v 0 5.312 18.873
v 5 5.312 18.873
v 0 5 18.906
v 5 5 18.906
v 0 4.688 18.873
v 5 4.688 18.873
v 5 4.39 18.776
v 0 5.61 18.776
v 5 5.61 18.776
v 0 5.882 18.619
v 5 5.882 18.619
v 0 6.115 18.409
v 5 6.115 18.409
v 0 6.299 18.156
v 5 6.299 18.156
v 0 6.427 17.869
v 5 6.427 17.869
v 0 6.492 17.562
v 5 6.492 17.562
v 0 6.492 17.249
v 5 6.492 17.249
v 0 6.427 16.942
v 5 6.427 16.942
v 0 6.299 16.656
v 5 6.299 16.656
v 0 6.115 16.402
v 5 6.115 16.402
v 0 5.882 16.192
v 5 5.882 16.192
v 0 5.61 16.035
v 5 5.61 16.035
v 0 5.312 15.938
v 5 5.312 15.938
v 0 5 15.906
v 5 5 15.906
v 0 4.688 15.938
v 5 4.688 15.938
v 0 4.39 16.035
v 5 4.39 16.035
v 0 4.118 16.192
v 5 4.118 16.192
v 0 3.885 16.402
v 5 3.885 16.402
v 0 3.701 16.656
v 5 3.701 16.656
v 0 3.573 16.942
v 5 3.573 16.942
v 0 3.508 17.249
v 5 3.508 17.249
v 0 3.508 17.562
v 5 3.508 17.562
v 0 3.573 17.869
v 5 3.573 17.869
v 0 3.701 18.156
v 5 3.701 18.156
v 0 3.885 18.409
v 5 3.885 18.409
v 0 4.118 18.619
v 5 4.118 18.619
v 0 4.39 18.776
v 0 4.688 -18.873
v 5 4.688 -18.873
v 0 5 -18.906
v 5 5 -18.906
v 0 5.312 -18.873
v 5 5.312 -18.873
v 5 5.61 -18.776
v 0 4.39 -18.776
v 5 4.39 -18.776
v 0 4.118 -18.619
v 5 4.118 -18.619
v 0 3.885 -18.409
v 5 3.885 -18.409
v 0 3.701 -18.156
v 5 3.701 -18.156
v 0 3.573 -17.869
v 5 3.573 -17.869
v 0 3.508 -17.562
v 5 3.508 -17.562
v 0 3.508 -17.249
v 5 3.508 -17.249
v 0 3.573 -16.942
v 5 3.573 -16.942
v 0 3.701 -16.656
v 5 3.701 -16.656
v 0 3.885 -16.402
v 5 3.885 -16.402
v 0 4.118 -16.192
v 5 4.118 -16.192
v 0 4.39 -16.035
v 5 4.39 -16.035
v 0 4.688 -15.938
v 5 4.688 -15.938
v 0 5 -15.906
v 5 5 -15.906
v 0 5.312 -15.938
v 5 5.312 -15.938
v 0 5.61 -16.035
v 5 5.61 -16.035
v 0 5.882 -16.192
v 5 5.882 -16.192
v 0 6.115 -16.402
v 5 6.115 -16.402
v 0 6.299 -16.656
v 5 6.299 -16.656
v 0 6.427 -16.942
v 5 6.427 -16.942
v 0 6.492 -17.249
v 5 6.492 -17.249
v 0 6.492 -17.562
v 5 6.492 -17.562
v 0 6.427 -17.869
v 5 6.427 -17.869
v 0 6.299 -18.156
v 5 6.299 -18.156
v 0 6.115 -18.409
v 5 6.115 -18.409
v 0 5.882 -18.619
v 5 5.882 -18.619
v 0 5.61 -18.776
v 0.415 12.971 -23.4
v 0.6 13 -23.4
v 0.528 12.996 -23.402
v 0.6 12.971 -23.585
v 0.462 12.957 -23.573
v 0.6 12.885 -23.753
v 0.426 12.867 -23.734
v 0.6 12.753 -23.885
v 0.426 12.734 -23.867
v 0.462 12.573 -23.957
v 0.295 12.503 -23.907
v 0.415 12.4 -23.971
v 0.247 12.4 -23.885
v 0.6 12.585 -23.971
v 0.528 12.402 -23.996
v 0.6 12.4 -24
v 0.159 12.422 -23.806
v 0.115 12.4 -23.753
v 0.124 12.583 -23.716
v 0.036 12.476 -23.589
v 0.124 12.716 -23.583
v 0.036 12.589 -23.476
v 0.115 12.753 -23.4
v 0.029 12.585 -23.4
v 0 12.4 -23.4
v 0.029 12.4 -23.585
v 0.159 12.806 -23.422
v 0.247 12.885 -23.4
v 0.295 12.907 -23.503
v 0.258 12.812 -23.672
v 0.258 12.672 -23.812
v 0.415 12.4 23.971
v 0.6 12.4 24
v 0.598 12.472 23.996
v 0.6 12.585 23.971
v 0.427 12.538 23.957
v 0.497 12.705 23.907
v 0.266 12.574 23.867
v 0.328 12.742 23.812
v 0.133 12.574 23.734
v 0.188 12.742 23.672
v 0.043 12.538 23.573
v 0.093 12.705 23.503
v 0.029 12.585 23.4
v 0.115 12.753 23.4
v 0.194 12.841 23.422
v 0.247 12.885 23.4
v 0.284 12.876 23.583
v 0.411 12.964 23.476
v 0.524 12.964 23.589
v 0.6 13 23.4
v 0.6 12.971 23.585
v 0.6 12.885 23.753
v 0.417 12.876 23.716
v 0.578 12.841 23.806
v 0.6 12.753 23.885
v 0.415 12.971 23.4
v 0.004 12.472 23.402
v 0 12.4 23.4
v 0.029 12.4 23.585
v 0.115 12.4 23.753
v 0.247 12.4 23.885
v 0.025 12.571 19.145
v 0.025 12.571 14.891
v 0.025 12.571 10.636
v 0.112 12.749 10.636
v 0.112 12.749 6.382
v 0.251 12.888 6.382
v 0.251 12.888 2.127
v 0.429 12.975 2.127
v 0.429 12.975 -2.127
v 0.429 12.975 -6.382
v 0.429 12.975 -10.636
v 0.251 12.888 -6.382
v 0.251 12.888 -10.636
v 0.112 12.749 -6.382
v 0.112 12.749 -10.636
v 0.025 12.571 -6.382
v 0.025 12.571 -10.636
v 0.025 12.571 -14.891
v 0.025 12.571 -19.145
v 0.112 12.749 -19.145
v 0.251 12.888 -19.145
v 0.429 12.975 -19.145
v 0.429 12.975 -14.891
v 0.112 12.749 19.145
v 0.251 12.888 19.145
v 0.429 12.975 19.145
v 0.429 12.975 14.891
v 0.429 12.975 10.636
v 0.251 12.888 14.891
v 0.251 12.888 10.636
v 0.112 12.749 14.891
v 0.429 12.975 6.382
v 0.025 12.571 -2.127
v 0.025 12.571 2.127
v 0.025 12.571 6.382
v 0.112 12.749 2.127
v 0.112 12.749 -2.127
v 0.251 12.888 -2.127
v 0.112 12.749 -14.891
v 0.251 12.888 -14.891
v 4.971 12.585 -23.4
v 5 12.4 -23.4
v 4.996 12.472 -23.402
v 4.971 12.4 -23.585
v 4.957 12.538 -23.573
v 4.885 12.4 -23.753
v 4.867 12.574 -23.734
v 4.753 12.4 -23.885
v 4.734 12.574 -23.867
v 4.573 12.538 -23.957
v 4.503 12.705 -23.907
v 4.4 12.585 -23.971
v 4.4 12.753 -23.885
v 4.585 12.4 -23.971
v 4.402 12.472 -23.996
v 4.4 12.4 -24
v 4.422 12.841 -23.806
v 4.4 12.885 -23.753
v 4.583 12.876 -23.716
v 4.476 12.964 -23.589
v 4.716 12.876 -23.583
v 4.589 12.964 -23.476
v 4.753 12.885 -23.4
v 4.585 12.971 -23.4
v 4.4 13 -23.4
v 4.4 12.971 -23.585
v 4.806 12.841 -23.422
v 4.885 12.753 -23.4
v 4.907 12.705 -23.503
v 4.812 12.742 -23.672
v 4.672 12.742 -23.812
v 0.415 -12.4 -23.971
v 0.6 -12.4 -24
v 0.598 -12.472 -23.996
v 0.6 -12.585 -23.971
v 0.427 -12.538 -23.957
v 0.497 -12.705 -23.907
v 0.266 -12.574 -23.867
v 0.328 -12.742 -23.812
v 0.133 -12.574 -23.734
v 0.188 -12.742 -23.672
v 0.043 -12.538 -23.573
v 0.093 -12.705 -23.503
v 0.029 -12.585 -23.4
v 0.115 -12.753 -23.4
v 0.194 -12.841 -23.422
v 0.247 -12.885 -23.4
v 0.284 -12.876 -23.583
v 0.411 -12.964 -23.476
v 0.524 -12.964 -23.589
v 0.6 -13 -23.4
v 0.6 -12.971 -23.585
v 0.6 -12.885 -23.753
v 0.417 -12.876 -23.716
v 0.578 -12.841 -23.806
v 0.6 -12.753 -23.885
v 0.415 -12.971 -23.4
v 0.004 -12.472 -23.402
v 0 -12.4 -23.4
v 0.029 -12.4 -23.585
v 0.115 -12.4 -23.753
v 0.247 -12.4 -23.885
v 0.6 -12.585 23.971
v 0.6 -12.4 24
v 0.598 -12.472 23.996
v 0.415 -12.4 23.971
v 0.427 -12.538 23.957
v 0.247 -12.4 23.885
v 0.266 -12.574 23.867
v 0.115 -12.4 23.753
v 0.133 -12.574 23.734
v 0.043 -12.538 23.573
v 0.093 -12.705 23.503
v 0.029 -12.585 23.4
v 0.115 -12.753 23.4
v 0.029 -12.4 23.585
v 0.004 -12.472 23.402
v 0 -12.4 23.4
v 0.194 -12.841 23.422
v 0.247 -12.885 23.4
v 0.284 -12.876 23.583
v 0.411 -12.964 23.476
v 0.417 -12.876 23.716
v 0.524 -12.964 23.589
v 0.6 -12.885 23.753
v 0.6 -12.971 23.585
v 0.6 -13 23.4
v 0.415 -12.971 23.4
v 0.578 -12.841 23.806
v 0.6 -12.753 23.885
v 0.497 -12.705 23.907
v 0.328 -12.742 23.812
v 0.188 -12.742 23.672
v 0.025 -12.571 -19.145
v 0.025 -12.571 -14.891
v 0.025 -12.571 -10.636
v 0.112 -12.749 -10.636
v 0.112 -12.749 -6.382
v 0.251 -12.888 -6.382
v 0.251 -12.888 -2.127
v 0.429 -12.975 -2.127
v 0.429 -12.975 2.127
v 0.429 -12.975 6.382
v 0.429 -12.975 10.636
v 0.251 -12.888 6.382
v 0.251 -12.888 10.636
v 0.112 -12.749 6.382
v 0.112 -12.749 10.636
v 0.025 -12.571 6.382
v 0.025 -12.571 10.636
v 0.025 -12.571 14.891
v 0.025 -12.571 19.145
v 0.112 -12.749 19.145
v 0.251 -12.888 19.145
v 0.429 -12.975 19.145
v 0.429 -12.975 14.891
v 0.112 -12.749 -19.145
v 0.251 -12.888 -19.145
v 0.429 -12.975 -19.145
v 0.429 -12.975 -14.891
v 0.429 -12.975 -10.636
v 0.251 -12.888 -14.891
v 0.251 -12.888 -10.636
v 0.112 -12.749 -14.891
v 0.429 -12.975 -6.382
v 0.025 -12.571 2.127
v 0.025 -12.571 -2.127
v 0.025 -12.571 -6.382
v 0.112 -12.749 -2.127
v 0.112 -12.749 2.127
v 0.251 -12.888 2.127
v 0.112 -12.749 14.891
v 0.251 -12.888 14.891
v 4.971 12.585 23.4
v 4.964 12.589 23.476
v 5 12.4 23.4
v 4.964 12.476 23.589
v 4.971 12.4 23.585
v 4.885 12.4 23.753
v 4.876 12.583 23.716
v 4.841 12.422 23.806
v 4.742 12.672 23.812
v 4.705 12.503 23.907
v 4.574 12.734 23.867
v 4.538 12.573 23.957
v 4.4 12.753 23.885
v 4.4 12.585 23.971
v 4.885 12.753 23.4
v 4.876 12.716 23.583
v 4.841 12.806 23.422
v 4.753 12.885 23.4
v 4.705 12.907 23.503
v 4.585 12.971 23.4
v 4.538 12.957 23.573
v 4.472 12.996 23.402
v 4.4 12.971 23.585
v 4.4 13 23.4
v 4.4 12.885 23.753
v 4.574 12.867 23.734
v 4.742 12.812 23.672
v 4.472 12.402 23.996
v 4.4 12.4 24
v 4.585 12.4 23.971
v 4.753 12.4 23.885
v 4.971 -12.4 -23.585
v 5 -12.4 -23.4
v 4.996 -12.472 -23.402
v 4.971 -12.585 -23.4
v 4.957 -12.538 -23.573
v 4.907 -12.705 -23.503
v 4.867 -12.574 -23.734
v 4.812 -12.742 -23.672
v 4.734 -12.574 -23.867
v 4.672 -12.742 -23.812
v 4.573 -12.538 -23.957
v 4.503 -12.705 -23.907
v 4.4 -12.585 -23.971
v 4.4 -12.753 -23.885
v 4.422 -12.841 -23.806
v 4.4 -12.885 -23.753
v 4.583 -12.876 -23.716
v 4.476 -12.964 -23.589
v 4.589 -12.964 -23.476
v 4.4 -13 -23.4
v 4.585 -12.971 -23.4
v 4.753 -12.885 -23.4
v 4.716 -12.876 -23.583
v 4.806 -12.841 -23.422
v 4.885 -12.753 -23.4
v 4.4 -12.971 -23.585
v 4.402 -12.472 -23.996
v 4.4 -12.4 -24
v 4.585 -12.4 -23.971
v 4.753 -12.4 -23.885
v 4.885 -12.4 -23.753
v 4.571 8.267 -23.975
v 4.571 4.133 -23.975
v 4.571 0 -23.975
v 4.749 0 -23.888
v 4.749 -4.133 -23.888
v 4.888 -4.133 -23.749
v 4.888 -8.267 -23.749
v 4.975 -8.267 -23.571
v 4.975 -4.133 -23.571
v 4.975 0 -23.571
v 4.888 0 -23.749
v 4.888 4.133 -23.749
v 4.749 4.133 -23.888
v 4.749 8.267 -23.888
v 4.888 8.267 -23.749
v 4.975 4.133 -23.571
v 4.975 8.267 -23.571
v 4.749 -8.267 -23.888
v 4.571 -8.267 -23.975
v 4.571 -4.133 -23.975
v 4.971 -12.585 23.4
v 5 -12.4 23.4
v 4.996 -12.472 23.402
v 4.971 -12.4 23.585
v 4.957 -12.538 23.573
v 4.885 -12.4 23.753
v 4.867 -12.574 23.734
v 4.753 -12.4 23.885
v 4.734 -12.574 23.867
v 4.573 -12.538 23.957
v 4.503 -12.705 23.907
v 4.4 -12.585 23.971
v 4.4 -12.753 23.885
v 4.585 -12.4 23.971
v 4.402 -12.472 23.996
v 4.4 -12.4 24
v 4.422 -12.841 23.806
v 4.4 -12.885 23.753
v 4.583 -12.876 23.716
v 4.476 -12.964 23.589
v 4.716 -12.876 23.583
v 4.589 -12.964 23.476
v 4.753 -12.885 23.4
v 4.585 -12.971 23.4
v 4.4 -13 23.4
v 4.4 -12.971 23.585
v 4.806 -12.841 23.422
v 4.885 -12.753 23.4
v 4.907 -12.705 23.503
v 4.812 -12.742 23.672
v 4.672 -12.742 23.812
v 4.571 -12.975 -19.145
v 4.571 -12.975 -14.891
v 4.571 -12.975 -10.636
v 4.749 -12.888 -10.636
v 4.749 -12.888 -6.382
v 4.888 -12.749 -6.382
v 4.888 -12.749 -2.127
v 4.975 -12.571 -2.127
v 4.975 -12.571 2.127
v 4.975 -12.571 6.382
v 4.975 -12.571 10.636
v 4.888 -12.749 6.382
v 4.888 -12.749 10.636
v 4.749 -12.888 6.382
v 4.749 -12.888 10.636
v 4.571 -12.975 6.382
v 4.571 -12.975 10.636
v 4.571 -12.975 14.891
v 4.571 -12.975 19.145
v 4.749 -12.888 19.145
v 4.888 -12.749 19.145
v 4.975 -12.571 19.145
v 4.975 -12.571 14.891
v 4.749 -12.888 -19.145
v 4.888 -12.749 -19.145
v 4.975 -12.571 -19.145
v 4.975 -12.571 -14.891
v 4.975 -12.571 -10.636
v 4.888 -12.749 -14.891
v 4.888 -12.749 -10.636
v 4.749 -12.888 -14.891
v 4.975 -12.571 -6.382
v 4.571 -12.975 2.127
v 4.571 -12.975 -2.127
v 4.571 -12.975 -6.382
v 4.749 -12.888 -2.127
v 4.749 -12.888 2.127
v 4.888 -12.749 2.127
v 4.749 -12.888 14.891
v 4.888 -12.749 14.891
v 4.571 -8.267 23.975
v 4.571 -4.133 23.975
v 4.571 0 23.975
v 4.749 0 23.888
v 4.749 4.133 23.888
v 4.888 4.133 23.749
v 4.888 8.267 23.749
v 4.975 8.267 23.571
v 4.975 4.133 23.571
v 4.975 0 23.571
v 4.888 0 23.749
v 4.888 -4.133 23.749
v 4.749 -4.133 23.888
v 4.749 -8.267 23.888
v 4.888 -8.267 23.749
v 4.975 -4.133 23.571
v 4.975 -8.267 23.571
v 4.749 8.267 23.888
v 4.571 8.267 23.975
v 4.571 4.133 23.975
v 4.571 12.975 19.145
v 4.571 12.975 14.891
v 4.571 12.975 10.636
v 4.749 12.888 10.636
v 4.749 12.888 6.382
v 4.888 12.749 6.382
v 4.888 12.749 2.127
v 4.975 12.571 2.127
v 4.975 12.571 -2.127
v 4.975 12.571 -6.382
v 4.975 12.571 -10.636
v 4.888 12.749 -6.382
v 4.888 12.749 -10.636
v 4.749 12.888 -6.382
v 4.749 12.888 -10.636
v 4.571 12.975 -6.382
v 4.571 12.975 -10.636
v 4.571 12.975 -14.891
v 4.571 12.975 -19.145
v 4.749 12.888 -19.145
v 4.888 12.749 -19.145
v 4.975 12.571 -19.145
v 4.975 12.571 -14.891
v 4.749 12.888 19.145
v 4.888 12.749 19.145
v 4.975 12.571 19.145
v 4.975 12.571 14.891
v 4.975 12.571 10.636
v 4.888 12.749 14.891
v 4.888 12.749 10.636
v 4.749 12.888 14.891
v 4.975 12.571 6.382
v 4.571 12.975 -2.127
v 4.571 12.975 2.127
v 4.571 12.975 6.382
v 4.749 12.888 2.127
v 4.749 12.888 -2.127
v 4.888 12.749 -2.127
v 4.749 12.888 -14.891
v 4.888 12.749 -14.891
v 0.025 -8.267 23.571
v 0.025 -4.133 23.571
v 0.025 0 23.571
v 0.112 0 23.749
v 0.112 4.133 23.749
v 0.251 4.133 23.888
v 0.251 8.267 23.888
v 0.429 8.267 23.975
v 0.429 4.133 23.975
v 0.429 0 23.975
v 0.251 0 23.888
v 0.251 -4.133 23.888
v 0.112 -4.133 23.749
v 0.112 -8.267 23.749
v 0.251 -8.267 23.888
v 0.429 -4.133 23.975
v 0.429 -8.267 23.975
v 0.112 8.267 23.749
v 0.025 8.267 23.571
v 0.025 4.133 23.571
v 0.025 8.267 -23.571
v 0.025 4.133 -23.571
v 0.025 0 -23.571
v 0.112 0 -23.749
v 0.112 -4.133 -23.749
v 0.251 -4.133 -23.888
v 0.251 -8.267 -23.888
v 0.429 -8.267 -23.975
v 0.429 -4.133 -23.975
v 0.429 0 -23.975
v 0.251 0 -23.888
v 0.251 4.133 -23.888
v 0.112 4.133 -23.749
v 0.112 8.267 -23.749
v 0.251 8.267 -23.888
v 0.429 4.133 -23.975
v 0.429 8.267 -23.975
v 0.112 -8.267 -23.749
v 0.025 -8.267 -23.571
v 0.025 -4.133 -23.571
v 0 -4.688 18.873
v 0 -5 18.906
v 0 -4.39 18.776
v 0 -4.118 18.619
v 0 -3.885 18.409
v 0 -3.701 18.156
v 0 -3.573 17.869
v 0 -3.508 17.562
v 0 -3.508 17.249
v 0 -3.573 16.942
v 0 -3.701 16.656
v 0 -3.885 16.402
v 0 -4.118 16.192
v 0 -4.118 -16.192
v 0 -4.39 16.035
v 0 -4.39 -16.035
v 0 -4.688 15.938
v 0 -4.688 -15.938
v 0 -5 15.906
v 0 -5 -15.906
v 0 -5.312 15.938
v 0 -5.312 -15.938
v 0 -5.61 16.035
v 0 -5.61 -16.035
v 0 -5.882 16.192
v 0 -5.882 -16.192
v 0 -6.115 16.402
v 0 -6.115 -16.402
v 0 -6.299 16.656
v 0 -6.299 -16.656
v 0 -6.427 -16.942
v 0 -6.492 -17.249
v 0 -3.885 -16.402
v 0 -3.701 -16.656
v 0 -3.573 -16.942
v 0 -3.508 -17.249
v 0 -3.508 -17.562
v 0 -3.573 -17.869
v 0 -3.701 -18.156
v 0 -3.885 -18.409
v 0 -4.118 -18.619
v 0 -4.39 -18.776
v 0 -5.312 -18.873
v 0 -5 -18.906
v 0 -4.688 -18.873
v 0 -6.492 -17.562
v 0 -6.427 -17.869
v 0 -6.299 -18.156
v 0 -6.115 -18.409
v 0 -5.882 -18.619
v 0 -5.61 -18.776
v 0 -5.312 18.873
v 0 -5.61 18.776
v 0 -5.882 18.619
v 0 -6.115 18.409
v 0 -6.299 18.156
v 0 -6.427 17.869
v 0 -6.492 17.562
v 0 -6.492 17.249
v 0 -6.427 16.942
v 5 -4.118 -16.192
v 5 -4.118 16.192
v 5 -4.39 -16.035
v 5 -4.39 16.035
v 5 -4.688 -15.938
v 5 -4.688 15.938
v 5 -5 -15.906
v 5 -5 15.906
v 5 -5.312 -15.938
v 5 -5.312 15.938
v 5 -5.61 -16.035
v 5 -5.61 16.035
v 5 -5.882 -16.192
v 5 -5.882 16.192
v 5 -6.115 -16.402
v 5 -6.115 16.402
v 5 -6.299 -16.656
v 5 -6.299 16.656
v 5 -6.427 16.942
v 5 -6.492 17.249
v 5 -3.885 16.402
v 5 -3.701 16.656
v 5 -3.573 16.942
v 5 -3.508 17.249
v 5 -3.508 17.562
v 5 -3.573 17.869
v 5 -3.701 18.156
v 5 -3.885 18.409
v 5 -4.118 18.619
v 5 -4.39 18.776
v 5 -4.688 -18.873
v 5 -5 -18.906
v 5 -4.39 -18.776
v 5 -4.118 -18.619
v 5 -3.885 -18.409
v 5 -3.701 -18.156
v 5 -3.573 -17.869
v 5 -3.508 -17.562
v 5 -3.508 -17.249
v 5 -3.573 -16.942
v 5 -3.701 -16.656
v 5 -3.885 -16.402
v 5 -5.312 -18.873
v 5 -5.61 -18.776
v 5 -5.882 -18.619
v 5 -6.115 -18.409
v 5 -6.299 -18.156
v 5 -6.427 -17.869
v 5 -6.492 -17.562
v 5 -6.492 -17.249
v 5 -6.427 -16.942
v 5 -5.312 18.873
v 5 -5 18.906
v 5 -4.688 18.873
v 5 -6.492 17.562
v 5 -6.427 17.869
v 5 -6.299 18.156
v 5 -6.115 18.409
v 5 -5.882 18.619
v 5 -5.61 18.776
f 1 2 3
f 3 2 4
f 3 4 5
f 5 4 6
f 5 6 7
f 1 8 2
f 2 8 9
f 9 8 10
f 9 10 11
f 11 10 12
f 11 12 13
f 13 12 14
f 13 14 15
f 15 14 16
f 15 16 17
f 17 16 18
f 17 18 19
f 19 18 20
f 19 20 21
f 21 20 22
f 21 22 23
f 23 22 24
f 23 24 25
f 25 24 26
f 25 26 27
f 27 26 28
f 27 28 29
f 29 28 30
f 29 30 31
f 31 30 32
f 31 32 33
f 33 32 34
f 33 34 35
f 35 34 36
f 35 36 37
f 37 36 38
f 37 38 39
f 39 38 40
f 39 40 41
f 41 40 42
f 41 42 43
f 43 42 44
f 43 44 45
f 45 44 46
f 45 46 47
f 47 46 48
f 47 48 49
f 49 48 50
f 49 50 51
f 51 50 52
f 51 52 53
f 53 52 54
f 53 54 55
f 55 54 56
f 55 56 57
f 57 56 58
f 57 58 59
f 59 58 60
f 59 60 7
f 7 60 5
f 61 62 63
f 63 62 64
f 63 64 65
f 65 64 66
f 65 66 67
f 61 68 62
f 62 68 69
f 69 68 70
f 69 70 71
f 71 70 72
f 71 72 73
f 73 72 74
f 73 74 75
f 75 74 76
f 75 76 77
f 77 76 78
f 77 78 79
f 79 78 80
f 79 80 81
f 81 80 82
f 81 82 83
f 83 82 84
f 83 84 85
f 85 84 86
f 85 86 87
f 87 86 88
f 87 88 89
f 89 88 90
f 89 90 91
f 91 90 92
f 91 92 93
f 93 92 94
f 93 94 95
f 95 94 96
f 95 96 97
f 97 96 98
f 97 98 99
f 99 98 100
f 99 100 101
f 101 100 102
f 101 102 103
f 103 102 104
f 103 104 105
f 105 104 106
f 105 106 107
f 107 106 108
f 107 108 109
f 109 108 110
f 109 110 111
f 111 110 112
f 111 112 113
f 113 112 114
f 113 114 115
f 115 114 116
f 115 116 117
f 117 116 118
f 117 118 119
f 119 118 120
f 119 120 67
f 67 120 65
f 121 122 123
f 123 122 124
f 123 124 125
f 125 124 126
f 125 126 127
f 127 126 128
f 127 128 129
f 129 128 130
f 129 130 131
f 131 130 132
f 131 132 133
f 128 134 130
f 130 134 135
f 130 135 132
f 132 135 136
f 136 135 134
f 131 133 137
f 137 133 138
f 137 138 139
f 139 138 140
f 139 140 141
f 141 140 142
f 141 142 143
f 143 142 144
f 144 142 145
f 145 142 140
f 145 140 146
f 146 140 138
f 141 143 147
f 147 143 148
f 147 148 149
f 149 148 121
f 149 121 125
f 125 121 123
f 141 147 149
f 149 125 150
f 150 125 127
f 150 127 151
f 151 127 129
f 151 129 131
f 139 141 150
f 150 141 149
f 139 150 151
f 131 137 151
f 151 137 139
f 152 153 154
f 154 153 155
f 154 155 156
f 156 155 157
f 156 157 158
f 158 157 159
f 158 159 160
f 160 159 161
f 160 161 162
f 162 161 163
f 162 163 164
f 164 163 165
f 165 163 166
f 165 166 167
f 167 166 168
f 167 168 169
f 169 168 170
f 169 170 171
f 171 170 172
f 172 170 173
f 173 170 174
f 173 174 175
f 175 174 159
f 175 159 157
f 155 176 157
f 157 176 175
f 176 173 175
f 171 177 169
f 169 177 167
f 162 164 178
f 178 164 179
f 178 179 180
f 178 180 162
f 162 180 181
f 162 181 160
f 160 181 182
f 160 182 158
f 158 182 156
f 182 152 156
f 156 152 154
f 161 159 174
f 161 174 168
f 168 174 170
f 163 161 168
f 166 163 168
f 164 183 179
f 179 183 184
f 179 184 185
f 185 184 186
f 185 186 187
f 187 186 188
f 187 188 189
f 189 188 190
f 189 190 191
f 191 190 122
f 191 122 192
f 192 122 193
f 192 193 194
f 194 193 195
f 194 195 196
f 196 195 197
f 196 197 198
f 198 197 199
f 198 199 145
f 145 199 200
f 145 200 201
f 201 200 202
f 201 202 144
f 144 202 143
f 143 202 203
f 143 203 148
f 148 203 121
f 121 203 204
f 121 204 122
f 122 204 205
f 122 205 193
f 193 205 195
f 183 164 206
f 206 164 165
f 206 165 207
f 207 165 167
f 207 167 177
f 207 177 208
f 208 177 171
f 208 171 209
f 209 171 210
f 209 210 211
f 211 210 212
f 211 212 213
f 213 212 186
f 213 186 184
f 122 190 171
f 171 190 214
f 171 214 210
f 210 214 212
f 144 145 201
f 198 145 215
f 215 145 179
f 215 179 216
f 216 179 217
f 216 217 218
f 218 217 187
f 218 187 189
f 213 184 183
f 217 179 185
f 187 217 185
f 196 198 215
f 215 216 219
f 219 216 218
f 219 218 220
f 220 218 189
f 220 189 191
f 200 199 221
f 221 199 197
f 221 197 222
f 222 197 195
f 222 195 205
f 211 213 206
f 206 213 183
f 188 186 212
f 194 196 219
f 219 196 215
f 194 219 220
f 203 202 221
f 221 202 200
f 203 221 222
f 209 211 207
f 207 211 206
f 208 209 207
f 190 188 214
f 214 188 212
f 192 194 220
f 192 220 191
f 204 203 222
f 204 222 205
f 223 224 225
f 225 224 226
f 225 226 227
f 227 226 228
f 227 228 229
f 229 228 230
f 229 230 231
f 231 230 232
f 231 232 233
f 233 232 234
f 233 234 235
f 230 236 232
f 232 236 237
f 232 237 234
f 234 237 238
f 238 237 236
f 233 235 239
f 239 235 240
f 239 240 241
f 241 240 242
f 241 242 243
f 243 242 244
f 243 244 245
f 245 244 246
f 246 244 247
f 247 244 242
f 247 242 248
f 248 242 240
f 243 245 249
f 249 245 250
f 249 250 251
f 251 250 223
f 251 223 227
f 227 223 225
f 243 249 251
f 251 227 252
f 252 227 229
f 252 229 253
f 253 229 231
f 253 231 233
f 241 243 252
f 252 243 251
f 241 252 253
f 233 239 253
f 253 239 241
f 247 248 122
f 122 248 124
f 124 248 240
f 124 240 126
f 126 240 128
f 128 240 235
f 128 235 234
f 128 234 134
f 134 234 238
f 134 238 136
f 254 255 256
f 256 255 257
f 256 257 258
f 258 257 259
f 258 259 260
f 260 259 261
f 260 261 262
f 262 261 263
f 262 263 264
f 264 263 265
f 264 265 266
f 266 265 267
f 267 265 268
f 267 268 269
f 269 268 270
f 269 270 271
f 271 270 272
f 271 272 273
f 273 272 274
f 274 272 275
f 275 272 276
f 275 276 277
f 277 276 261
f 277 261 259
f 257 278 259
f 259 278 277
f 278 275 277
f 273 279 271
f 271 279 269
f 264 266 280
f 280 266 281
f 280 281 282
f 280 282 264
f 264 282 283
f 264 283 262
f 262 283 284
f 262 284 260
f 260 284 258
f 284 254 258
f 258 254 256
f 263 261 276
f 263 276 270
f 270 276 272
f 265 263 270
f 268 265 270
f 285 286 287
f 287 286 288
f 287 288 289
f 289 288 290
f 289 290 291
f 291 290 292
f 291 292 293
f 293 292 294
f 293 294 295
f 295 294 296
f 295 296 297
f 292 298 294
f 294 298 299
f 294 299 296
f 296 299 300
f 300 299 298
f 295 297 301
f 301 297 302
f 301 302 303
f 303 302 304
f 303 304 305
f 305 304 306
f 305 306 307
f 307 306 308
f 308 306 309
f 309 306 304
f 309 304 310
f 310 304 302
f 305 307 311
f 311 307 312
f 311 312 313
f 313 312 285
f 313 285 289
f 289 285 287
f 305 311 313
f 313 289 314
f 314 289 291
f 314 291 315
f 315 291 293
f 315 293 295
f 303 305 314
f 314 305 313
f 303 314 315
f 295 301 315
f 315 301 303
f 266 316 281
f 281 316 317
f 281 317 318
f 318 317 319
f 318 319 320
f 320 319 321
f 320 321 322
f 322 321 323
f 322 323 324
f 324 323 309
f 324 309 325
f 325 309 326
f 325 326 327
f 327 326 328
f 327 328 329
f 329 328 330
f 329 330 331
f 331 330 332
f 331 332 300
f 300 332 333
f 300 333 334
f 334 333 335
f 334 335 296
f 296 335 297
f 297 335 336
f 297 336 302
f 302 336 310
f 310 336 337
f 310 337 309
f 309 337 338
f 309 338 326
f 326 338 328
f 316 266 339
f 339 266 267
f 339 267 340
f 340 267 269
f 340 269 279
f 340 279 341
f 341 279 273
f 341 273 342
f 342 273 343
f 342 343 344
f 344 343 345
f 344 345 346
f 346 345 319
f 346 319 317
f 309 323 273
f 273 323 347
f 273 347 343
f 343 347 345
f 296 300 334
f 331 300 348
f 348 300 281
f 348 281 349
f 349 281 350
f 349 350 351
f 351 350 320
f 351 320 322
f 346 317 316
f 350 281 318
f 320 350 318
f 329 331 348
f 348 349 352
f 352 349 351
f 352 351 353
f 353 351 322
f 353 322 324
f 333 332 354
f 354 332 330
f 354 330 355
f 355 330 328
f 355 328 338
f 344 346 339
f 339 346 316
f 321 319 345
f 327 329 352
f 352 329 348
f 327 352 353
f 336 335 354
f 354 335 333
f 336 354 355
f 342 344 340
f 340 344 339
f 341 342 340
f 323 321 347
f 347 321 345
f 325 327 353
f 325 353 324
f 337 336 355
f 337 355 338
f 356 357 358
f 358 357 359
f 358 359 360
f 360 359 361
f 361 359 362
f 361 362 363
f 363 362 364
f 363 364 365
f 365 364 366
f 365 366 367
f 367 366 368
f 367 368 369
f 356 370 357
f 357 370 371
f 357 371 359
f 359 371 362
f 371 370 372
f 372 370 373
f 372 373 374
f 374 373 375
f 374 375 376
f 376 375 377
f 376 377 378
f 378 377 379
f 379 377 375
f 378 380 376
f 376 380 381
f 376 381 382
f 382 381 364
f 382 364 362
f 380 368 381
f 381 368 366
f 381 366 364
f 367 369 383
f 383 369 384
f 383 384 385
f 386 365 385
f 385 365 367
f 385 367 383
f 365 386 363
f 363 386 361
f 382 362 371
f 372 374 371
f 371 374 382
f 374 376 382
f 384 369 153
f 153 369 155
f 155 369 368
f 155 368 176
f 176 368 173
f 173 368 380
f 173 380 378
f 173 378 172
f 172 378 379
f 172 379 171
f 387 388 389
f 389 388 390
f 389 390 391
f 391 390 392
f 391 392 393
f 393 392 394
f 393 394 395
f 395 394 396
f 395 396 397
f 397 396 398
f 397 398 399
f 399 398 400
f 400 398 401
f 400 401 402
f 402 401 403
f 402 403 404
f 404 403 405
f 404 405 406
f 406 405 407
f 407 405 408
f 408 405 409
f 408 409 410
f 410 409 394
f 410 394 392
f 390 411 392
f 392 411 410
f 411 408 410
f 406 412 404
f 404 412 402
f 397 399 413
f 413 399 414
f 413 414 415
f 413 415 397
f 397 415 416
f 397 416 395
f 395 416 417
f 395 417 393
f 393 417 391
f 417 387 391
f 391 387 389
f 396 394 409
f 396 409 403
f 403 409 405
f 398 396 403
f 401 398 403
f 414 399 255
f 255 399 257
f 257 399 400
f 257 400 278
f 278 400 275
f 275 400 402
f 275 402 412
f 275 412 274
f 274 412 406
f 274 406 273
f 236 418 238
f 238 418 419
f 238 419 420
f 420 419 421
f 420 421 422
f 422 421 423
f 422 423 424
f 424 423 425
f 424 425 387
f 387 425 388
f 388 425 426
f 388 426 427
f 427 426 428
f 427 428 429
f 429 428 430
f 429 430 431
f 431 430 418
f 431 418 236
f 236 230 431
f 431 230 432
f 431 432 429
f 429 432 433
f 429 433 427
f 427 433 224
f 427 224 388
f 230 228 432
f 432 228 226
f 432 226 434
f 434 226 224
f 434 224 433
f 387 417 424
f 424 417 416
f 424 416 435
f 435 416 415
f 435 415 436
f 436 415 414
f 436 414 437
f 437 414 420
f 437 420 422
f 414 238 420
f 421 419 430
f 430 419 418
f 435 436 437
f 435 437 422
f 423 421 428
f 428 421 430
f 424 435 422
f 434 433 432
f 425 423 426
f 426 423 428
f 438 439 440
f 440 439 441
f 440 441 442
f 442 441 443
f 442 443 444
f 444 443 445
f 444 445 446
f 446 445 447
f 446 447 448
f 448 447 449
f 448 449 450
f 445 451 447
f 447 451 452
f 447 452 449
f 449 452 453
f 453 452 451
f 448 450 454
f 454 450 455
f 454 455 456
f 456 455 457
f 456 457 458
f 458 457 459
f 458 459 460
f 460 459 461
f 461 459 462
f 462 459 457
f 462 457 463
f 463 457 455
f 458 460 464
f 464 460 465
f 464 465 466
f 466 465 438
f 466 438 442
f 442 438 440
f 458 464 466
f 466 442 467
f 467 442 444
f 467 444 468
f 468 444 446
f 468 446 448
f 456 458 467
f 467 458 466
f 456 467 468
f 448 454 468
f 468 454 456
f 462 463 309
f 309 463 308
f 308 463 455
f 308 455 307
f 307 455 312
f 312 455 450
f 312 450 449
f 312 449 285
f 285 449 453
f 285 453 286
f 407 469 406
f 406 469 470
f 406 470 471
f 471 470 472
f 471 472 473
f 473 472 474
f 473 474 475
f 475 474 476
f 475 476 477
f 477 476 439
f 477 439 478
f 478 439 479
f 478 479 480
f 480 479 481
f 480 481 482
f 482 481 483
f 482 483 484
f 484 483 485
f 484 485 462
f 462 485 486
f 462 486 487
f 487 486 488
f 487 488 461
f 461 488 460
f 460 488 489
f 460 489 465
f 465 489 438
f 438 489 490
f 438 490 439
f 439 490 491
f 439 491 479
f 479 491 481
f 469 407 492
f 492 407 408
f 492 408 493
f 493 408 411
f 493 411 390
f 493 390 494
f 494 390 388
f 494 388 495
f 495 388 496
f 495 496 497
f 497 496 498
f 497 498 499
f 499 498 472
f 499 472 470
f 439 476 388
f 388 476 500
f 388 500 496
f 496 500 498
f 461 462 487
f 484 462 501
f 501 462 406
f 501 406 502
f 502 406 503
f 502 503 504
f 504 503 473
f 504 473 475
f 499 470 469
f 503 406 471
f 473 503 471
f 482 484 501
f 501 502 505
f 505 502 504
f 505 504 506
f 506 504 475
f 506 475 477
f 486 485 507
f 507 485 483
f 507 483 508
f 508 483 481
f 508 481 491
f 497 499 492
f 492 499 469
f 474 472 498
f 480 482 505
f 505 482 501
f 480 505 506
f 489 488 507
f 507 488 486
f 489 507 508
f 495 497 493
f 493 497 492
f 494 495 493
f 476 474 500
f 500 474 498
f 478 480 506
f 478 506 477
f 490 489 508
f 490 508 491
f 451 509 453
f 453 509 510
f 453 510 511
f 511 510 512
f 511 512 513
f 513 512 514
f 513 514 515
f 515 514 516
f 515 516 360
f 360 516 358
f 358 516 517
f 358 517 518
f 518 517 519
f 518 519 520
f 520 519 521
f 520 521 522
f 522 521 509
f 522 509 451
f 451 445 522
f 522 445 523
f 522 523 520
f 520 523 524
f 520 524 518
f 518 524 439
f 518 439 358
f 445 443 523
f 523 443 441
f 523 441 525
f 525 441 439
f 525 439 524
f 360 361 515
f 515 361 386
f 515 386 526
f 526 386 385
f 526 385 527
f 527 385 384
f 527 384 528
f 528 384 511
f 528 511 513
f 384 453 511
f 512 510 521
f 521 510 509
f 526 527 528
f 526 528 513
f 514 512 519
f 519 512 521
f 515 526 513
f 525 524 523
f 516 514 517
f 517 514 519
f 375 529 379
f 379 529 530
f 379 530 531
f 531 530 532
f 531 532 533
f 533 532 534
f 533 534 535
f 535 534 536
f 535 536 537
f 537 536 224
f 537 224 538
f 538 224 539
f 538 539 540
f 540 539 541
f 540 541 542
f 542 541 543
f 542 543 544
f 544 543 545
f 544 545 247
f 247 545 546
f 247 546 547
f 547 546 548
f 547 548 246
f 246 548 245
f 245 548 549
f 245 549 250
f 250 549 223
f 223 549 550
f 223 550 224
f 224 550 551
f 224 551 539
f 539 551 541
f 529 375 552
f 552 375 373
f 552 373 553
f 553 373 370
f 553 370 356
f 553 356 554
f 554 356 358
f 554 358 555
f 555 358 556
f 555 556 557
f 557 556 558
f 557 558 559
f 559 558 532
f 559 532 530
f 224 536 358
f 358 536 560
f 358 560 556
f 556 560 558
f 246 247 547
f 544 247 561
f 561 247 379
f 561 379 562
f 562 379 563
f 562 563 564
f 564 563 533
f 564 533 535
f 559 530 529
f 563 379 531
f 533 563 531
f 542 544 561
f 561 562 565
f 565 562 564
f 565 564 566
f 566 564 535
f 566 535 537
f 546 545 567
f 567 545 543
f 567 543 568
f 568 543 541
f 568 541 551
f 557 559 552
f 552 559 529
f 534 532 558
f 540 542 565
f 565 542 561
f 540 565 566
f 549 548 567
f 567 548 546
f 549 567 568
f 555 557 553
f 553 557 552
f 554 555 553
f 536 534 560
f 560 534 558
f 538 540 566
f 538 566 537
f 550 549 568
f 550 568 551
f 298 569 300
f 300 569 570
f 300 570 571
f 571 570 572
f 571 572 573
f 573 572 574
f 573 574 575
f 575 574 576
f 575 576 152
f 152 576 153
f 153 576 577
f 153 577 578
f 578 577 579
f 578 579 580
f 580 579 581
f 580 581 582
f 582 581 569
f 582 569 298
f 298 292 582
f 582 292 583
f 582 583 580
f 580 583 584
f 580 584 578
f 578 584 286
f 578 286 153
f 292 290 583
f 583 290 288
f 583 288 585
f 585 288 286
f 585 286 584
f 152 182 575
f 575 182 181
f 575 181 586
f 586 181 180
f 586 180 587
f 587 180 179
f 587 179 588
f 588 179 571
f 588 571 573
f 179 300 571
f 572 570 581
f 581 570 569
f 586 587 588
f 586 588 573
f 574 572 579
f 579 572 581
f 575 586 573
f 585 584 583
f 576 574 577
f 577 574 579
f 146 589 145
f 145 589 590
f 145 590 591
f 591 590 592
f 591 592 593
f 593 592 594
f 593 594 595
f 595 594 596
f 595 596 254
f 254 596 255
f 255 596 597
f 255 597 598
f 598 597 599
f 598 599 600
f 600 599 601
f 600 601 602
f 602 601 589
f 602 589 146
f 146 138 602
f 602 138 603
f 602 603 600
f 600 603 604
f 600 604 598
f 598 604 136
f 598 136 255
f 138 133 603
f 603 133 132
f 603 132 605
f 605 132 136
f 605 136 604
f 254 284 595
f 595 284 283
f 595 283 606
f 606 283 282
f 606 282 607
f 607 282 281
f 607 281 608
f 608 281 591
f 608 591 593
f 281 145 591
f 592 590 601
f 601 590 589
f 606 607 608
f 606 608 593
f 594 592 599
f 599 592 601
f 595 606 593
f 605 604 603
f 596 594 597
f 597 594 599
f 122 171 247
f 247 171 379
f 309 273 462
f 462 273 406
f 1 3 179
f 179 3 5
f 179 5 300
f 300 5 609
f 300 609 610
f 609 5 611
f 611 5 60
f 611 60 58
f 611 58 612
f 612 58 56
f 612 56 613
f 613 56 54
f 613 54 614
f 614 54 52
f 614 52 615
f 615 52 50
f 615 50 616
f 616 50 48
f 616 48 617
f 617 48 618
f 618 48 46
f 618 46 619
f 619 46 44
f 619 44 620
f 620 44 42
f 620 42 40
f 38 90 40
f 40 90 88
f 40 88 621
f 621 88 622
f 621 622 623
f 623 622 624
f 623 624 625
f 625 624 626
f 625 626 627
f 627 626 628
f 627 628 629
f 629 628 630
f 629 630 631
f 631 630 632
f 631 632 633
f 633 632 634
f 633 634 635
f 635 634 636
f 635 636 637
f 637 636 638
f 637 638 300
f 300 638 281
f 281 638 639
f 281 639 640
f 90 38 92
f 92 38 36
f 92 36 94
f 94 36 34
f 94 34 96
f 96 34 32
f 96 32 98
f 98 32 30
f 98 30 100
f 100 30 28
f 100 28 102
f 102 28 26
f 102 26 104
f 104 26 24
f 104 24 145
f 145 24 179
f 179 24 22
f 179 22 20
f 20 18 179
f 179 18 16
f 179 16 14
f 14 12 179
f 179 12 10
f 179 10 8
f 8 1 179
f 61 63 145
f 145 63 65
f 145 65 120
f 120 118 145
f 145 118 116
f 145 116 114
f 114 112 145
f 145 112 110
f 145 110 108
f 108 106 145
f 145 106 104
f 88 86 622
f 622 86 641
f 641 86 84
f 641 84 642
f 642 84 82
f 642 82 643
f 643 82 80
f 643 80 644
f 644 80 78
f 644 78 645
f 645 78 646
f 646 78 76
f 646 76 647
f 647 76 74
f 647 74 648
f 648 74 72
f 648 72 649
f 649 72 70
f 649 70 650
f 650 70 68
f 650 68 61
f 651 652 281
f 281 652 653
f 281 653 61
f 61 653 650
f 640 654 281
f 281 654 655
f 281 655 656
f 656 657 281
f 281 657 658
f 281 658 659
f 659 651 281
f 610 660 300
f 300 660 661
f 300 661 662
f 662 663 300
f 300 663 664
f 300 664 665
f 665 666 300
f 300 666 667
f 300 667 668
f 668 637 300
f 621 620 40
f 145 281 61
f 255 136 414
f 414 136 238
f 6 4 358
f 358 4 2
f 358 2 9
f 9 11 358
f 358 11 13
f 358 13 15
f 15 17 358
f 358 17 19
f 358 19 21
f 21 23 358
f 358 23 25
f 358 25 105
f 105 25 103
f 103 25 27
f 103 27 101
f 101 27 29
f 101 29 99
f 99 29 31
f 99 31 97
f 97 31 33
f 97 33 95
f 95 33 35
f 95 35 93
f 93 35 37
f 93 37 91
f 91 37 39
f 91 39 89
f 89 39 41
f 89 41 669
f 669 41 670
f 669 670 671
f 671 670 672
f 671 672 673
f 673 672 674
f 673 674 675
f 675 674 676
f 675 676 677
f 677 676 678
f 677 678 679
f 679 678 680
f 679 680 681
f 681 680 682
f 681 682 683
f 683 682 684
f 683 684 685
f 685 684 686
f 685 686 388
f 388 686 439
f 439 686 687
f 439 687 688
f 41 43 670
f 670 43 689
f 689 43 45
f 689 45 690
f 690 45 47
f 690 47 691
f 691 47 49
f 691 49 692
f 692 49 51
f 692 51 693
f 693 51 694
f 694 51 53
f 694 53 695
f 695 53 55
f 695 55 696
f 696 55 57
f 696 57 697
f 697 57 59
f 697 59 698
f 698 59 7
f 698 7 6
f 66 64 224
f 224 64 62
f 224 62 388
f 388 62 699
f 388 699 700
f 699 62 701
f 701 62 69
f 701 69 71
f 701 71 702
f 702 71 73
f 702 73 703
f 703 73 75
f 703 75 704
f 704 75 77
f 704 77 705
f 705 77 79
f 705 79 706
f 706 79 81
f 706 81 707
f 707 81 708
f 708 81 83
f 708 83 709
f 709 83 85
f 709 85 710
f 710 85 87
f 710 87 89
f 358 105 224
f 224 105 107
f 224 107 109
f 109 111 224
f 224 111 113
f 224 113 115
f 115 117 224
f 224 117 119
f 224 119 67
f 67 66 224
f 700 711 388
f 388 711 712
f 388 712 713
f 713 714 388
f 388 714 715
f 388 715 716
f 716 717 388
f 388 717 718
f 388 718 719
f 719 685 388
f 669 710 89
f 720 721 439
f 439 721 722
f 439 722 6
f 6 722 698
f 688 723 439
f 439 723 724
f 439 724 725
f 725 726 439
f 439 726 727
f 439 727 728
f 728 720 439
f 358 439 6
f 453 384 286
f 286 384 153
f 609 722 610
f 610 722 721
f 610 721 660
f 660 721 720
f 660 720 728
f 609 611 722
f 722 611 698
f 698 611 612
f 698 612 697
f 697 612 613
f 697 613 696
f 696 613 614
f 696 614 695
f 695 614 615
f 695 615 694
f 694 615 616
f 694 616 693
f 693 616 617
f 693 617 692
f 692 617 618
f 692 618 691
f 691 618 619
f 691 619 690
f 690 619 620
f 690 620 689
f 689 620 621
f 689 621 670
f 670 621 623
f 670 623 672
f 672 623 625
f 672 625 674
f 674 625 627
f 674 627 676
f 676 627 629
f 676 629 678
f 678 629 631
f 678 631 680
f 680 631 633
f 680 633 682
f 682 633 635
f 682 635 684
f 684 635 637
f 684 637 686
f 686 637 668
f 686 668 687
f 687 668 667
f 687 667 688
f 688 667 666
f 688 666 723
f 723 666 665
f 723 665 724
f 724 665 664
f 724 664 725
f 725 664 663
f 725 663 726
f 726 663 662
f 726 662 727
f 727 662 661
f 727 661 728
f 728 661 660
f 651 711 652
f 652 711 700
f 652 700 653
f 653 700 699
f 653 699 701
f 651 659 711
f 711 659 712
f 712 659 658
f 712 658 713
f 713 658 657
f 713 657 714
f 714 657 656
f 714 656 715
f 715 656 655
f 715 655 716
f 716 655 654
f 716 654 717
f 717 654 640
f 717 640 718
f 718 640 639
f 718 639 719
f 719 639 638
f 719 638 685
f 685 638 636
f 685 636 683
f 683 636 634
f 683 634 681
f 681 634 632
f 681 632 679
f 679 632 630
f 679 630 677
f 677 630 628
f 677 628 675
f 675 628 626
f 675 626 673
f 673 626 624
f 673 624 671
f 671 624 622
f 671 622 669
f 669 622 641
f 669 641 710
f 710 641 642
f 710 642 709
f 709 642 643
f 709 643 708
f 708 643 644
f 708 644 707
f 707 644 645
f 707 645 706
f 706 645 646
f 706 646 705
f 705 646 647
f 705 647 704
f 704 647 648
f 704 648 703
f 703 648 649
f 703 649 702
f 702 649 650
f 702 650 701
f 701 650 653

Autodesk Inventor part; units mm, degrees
ref_plane "YZ Plane" through (0, 0, 0) normal (1, 0, 0) x (0, 1, 0)
ref_plane "XZ Plane" through (0, 0, 0) normal (0, 1, 0) x (-1, 0, 0)
ref_plane "XY Plane" through (0, 0, 0) normal (0, 0, 1) x (1, 0, 0)
sketch "Sketch1" plane through (0, 0, 0) normal (1, 0, 0) x (0, 1, 0)
  line L0 (-13, 24) -> (-13, -24)
  line L1 (-13, -24) -> (13, -24)
  line L2 (13, -24) -> (13, 24)
  line L3 (13, 24) -> (-13, 24)
  line L4 (-13, 24) -> (13, -24) construction
  line L5 (-13, -24) -> (13, 24) construction
  point P0 (0, 0)
  dimension "d0" = 48
  dimension "d1" = 26
extrude "Extrusion1" add sketch "Sketch1" along normal blind 5
sketch "Sketch2" plane through (5, 0, 0) normal (1, 0, 0) x (0, 0, -1)
  circle A0 centre (17.4055, -5) radius 1.5
  line L0 (3.065, 0) -> (34.1813, 0)
  circle A1 centre (17.4055, 5) radius 1.5
  point P0 (0, 0)
  dimension "d5" = 3
  dimension "d11" = 17.4055
  dimension "d12" = 5
extrude "Extrusion2" cut sketch "Sketch2" against normal blind 5 contours A0
thread "Thread1" size "M3x0.5" class "6H" standard "ANSI Metric M Profile" full length
mirror "Mirror1" about plane through (0, 0, 0) normal (0, 0, 1) of "Extrusion2"
fillet "Fillet1" radius 0.6 12 edges at (5, -13, 0) (0, -13, 0) (2.5, -13, -24) (5, 0, -24) (0, 0, -24) (2.5, 13, -24) (5, 13, 0) (0, 13, 0) (2.5, 13, 24) (5, 0, 24) (2.5, -13, 24) (0, 0, 24)
mirror "Mirror2" about plane through (0, 0, 0) normal (0, 1, 0) of "Extrusion2", "Mirror1"
properties part number "Clamp Plate V2"
